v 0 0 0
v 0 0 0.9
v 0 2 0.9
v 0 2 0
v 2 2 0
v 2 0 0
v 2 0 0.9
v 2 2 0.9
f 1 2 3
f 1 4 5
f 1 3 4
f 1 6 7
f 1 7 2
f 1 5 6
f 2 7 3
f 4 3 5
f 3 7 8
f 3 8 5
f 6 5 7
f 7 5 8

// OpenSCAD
/* Warning, this is a very basic generator with a lot of approximation 
input data : [VQFN, MWA, 2x2x0.9mm, 10, , A, C04-01094A]
generated by com.zoubworld.electronics.cad.model3d.Basic
Date : Sun Feb 15 10:50:49 CET 2026
*/

//body
color("black")
translate([0,0,0])
cube([2.0,2.0,0.9], center=false);
